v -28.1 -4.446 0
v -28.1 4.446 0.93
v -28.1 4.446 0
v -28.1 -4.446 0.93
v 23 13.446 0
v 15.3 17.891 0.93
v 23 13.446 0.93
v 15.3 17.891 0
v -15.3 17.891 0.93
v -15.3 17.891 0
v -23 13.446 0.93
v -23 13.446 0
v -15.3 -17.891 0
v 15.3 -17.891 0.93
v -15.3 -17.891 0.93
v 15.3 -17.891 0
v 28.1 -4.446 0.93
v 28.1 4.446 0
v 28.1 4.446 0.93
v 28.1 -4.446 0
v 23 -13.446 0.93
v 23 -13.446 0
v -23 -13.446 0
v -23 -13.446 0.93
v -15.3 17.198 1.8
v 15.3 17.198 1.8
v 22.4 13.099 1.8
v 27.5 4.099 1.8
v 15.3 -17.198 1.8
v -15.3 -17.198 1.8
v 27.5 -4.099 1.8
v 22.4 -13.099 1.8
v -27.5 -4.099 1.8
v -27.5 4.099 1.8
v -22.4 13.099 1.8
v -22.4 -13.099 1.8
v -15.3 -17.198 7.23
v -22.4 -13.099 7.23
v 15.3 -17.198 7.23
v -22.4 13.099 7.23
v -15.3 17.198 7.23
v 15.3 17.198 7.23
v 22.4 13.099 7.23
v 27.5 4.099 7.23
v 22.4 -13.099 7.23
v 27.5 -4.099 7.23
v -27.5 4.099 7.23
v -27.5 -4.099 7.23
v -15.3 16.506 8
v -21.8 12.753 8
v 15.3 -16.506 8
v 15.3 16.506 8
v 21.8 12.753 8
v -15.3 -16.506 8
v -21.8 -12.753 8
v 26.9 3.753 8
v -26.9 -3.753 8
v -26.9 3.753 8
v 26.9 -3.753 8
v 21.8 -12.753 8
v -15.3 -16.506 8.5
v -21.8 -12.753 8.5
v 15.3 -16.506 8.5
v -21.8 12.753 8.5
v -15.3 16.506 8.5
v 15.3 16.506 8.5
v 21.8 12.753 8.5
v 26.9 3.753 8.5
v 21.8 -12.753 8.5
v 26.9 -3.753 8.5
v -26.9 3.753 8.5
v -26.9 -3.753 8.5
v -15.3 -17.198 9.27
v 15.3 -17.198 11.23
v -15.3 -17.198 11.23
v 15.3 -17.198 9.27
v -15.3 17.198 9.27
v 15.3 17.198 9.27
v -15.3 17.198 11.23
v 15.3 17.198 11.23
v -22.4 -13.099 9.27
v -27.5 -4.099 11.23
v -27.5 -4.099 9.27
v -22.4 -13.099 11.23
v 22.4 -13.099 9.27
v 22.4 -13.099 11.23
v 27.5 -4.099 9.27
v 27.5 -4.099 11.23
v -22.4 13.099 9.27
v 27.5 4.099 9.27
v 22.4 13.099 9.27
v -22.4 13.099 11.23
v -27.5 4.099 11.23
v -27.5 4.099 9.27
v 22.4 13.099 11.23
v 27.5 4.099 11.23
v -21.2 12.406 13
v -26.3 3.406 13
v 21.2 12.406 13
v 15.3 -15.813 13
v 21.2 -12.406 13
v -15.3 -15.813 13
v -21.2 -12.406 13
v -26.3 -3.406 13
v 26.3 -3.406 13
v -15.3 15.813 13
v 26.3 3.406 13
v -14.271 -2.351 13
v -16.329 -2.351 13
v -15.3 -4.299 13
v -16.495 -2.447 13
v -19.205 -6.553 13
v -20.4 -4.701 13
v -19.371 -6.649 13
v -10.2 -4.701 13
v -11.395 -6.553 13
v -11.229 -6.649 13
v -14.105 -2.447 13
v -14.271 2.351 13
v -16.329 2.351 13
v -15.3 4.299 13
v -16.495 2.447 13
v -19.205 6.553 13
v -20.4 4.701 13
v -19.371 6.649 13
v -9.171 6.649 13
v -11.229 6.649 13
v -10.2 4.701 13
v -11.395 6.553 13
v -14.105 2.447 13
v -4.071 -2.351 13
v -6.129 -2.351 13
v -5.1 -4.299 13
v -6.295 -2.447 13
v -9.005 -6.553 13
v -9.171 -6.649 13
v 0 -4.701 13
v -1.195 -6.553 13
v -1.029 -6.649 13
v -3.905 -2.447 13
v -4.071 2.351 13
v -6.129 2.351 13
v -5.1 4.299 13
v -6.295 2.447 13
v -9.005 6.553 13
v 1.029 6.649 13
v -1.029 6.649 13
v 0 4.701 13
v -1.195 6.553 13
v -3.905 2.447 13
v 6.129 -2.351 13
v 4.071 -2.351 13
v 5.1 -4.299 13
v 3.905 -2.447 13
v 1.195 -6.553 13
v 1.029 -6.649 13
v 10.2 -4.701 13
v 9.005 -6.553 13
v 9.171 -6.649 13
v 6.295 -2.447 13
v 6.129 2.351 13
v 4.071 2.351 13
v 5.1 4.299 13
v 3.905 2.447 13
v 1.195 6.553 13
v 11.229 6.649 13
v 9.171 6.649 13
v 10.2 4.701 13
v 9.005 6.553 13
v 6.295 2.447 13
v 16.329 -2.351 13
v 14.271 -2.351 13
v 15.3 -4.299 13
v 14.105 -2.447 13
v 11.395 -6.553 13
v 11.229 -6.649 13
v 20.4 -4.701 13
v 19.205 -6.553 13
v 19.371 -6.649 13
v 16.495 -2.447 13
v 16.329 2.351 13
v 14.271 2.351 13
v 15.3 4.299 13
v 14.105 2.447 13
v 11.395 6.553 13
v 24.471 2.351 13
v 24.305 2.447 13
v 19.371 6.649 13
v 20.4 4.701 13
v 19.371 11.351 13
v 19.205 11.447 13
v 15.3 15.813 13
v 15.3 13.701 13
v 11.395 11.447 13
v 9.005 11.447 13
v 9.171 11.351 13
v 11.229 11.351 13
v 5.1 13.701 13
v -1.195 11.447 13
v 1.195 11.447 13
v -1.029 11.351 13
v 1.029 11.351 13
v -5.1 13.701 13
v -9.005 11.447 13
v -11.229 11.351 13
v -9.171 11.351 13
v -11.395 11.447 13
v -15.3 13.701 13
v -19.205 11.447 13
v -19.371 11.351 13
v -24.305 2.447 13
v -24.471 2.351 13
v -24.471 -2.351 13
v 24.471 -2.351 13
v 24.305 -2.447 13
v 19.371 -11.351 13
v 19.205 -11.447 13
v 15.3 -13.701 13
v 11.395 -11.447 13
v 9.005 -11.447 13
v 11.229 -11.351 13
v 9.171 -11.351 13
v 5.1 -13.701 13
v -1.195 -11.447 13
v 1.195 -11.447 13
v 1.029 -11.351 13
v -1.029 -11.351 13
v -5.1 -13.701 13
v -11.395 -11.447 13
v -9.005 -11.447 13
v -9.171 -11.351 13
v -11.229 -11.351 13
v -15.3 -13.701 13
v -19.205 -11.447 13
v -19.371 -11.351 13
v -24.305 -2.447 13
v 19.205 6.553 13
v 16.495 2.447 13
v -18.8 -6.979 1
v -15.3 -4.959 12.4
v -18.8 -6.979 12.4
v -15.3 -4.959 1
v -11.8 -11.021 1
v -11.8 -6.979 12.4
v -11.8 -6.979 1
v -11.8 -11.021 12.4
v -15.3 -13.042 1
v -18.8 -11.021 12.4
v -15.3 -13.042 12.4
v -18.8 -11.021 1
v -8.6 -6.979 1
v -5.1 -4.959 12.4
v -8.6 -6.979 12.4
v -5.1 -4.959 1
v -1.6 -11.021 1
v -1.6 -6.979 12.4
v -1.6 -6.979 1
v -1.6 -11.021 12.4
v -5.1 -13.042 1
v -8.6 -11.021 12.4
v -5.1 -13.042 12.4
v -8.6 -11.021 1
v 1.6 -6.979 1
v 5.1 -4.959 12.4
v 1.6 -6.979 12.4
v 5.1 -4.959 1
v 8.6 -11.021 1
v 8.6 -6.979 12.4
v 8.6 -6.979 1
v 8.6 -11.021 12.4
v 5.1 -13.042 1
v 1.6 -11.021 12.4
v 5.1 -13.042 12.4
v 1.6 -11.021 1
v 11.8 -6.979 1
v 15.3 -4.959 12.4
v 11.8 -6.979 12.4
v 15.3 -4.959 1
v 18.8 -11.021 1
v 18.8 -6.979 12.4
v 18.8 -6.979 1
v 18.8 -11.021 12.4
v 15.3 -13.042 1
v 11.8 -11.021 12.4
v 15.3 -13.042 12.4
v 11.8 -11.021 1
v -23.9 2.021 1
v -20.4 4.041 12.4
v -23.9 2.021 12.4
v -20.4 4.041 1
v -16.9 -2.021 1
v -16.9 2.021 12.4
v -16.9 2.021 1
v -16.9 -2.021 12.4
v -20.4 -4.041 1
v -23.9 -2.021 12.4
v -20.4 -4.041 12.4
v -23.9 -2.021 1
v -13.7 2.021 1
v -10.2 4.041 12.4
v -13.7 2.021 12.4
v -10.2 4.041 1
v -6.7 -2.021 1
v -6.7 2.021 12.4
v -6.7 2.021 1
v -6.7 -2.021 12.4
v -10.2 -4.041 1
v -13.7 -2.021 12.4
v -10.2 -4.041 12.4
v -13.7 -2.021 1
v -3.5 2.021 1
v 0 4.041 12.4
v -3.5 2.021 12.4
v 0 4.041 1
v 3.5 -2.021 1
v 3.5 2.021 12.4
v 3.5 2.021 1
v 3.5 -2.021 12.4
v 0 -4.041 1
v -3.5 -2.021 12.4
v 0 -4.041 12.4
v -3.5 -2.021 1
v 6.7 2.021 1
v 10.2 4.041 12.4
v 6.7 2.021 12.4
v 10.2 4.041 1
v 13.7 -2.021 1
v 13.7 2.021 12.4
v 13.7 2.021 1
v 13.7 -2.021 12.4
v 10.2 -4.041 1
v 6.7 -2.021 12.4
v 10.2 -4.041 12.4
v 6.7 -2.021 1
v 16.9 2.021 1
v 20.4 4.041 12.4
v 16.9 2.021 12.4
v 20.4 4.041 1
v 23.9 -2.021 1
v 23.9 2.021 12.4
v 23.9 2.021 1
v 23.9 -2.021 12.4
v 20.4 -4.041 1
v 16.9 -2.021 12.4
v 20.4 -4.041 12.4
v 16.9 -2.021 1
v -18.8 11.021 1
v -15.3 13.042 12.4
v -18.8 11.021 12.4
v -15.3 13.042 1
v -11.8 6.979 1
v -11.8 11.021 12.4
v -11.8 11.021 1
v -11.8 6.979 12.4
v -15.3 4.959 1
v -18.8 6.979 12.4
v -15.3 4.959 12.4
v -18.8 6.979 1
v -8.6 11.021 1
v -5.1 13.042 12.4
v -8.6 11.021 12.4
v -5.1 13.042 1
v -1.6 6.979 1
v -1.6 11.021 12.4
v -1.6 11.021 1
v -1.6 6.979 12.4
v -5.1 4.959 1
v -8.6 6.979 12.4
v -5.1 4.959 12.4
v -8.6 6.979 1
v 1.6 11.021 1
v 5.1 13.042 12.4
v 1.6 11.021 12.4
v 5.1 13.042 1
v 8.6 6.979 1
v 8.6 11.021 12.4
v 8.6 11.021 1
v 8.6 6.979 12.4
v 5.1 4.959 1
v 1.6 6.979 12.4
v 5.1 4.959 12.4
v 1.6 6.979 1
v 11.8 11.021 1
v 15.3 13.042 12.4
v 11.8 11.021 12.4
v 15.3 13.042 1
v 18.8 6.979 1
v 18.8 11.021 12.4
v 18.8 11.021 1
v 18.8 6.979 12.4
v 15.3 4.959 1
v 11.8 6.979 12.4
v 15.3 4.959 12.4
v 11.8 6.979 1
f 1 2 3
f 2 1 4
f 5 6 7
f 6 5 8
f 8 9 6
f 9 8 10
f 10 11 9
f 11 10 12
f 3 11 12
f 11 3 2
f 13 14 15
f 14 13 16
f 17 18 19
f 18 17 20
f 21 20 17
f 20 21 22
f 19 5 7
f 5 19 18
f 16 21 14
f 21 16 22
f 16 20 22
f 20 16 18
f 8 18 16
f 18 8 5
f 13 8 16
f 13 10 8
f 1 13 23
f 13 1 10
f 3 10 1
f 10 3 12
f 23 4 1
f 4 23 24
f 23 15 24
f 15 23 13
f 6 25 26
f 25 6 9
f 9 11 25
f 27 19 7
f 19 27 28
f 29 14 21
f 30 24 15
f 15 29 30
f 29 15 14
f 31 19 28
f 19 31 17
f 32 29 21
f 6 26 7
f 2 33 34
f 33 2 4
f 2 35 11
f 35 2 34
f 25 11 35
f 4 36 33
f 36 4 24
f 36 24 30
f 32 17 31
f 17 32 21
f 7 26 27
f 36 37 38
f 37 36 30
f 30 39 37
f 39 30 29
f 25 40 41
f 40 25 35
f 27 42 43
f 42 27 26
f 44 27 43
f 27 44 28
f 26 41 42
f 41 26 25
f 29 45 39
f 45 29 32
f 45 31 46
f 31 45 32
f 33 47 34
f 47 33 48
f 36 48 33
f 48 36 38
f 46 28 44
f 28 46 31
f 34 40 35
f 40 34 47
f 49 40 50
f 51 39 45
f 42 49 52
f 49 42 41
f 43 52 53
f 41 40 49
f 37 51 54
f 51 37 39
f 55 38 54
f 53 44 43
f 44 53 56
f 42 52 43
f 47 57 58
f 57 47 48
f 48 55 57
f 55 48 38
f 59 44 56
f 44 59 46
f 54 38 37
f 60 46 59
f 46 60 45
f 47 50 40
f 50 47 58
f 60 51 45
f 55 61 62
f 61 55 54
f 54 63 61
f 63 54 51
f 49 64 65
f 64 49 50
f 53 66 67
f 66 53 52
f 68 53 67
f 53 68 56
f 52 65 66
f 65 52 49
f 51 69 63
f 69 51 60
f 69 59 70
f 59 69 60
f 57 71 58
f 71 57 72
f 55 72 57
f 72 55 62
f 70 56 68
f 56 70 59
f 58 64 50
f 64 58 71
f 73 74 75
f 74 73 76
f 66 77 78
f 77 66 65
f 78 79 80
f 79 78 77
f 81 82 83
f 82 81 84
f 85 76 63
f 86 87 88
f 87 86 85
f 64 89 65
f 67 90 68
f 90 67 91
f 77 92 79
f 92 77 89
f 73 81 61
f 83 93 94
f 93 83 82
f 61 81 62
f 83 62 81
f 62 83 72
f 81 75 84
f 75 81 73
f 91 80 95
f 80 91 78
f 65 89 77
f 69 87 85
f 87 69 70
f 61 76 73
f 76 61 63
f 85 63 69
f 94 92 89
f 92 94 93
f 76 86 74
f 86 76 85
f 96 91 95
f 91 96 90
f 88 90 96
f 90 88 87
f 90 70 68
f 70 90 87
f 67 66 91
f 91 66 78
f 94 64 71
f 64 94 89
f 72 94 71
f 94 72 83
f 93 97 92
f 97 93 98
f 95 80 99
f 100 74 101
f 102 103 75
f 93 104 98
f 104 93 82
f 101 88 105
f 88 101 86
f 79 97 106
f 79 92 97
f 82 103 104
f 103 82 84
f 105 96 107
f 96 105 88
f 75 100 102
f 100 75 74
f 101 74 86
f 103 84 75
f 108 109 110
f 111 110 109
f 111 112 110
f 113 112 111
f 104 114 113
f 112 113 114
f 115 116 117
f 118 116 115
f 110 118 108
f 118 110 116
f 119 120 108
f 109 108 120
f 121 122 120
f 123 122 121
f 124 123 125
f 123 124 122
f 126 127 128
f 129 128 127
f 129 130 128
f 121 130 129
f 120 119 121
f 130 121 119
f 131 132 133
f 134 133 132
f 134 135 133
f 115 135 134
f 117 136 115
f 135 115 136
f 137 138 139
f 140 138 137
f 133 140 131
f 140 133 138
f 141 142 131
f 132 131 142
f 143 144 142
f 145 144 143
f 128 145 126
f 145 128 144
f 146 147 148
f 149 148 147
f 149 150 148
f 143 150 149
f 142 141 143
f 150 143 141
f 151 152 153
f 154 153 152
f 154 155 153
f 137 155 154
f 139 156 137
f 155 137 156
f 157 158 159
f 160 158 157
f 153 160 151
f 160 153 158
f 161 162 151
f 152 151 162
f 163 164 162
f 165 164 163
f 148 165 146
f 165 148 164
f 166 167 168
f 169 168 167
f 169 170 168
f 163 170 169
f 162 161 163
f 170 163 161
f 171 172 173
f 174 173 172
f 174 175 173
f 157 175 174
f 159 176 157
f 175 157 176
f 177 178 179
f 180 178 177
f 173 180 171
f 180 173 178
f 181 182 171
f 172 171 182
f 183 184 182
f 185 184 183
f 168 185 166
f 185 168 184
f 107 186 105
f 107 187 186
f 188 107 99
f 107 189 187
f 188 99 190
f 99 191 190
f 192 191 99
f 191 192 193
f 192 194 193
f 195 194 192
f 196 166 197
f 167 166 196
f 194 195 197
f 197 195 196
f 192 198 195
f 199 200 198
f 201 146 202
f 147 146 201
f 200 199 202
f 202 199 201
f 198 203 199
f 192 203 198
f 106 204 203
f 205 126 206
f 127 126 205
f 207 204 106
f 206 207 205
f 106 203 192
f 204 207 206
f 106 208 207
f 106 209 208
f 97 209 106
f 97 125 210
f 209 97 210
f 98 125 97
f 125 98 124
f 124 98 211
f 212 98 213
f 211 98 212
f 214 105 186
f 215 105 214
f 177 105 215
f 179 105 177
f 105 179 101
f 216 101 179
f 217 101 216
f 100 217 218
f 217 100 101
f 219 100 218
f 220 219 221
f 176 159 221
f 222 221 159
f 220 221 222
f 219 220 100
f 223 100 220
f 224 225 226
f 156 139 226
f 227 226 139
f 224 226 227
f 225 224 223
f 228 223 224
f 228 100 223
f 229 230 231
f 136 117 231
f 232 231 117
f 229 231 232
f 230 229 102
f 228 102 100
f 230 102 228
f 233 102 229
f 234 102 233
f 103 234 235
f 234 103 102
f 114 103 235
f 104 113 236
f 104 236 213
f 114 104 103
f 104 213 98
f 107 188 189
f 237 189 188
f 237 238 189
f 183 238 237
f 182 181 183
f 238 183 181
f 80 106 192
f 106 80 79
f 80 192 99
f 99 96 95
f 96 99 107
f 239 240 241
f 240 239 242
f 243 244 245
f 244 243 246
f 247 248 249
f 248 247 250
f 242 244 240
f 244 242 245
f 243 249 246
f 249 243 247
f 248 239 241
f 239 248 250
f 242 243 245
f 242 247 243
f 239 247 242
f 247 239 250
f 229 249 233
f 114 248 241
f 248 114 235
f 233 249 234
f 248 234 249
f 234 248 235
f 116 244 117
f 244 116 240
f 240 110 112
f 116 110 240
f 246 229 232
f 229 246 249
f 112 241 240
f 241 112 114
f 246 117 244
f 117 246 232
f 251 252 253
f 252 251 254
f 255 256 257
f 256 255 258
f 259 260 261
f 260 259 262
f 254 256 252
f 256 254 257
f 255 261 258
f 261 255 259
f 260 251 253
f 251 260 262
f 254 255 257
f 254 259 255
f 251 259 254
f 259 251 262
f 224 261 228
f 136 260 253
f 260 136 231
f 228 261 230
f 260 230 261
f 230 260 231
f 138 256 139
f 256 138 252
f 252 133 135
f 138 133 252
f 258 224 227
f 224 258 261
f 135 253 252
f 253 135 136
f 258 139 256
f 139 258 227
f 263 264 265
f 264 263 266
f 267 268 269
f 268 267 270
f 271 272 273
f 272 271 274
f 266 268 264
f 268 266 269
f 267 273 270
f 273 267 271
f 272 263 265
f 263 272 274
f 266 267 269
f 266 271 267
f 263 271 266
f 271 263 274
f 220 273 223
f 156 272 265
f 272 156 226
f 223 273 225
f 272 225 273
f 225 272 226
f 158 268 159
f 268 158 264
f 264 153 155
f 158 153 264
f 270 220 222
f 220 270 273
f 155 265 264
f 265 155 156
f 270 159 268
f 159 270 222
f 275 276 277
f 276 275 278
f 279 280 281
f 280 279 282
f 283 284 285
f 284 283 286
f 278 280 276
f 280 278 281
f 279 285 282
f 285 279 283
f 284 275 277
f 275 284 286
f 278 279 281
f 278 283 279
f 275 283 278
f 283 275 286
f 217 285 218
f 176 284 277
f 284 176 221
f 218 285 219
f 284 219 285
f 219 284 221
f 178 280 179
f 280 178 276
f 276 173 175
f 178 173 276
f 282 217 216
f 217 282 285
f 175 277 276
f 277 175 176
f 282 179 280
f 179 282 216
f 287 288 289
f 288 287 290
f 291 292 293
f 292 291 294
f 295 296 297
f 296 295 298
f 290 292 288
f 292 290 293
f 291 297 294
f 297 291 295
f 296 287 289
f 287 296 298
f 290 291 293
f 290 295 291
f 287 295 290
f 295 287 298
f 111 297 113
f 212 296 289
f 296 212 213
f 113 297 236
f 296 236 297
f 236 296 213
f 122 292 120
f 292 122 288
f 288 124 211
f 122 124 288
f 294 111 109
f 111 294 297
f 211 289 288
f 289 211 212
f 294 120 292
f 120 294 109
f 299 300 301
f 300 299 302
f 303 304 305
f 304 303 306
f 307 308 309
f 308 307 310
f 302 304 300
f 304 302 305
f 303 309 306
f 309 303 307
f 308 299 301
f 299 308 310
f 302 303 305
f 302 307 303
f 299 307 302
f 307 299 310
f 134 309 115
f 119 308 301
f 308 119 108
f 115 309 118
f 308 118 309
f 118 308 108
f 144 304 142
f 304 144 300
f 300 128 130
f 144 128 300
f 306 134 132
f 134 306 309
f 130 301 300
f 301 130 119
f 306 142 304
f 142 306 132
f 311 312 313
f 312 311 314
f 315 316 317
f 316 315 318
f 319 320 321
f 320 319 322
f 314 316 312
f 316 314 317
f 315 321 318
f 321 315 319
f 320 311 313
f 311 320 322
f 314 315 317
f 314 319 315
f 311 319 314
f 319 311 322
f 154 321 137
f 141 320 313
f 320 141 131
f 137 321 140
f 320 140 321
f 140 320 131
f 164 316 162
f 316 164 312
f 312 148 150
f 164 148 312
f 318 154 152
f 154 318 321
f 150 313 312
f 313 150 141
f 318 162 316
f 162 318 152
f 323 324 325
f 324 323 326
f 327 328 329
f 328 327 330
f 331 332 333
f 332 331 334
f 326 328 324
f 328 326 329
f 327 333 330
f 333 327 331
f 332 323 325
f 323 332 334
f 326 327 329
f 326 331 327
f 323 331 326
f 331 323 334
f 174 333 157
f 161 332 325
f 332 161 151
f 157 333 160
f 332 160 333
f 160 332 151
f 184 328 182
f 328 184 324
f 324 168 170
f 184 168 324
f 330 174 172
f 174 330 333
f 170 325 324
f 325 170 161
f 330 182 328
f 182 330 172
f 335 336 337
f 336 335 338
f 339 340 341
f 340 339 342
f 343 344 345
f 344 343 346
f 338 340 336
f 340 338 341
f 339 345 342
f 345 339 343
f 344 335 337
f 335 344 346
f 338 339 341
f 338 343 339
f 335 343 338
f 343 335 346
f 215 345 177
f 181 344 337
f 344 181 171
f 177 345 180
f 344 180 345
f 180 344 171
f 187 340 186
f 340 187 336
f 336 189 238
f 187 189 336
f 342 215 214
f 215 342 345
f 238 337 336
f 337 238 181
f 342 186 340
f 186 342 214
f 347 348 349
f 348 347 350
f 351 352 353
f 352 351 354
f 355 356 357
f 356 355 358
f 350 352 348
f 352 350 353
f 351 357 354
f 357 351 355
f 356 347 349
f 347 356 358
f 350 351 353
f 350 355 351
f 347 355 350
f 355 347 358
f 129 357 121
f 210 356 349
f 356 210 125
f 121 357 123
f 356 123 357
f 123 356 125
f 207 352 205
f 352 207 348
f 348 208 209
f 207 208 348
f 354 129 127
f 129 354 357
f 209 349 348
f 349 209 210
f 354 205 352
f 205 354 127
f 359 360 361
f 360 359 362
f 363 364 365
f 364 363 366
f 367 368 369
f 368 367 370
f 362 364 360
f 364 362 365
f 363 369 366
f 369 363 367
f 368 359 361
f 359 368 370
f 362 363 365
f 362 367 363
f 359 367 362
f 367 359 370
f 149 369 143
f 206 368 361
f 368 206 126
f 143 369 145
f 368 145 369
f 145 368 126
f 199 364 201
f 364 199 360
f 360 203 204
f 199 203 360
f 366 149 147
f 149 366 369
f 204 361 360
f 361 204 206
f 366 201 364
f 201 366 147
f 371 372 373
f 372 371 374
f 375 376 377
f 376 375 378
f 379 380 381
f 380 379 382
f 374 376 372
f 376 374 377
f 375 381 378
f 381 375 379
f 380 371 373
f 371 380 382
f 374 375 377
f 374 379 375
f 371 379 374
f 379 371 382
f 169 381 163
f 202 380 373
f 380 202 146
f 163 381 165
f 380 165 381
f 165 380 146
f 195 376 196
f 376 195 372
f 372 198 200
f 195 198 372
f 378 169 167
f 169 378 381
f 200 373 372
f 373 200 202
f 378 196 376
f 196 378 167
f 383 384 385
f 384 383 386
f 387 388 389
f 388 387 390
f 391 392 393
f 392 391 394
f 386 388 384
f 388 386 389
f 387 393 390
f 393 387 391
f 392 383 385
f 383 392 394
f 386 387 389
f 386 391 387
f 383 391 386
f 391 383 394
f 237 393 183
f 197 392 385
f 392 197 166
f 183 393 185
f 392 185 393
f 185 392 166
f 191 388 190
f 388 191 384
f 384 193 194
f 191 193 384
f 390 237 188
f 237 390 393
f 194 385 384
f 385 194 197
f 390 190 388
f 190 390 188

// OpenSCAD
// Contoured hex-bit stand, v3
// 13 pockets in a 4-5-4 hexagonal lattice.
// Designed for a 0.6 mm nozzle and support-free FDM printing.
// Units: millimetres.

$fn = 48;

// ---------- Pocket layout ----------
row_counts = [4, 5, 4];
total_pockets = 13;

hex_flat_to_flat = 7.0;
pocket_depth = 12.0;
base_thickness = 1.0;
pocket_mouth_chamfer_h = 0.6;
pocket_mouth_flat_to_flat = 8.2;

pitch_x = 10.2;
pitch_y = 9.0;

// ---------- Contoured body ----------
// Nominal material around the widest part of the pocket mouths.
wall_margin = 3.0;            // five 0.6 mm nozzle widths

body_h = pocket_depth + base_thickness; // 13 mm total

// Side-wall styling. All horizontal changes are multiples of 0.6 mm.
foot_flare = 0.6;             // subtle lower plinth
waist_inset = 0.6;            // shallow recessed accent band
top_chamfer_inset = 1.2;      // 2 nozzle widths at the top edge

// Z stations for faceted/tapered wall profile.
z0 = 0.00;
z_foot_top = 0.90;
z_foot_blend = 1.80;
z_waist_start = 7.20;
z_waist_low = 8.00;
z_waist_high = 8.50;
z_waist_end = 9.30;
z_chamfer_start = 11.20;
z_top = body_h;

// ---------- Derived ----------
hex_r = hex_flat_to_flat / sqrt(3);
mouth_hex_r = pocket_mouth_flat_to_flat / sqrt(3);

module pocket_hex_2d(r) {
    rotate(30)
        circle(r = r, $fn = 6);
}

module pocket_cluster_2d() {
    union() {
        for (ri = [0 : len(row_counts)-1]) {
            count = row_counts[ri];
            y = (ri - (len(row_counts)-1)/2) * pitch_y;
            for (ci = [0 : count-1]) {
                x = (ci - (count-1)/2) * pitch_x;
                translate([x, y])
                    pocket_hex_2d(mouth_hex_r);
            }
        }
    }
}

// Body outline follows the union of the outermost pocket mouths.
// `extra` modifies the nominal wall margin for styling transitions.
module body_profile_2d(extra = 0) {
    offset(delta = wall_margin + extra)
        pocket_cluster_2d();
}

module profile_slice(z, extra, thickness = 0.03) {
    translate([0, 0, z])
        linear_extrude(height = thickness)
            body_profile_2d(extra);
}

module loft_segment(z1, extra1, z2, extra2) {
    hull() {
        profile_slice(z1, extra1);
        profile_slice(z2 - 0.03, extra2);
    }
}

module styled_body() {
    union() {
        // Slightly flared base/plinth.
        loft_segment(z0, foot_flare, z_foot_top, foot_flare);
        loft_segment(z_foot_top, foot_flare, z_foot_blend, 0);

        // Main wall.
        loft_segment(z_foot_blend, 0, z_waist_start, 0);

        // Shallow recessed faceted belt around the outer wall.
        loft_segment(z_waist_start, 0, z_waist_low, -waist_inset);
        loft_segment(z_waist_low, -waist_inset, z_waist_high, -waist_inset);
        loft_segment(z_waist_high, -waist_inset, z_waist_end, 0);

        // Upper wall and top chamfer.
        loft_segment(z_waist_end, 0, z_chamfer_start, 0);
        loft_segment(z_chamfer_start, 0, z_top, -top_chamfer_inset);
    }
}

module hex_prism(r, h) {
    linear_extrude(height = h)
        pocket_hex_2d(r);
}

module bit_pocket() {
    // Straight 7.0 mm AF section begins exactly 1.0 mm above the print bed.
    translate([0, 0, base_thickness])
        hex_prism(hex_r, pocket_depth - pocket_mouth_chamfer_h + 0.08);

    // 0.6 mm lead-in taper. Functional pocket below remains 7.0 mm AF.
    hull() {
        translate([0, 0, body_h - pocket_mouth_chamfer_h])
            hex_prism(hex_r, 0.03);
        translate([0, 0, body_h + 0.03])
            hex_prism(mouth_hex_r, 0.03);
    }
}

module all_pockets() {
    for (ri = [0 : len(row_counts)-1]) {
        count = row_counts[ri];
        y = (ri - (len(row_counts)-1)/2) * pitch_y;
        for (ci = [0 : count-1]) {
            x = (ci - (count-1)/2) * pitch_x;
            translate([x, y, 0])
                bit_pocket();
        }
    }
}

module stand() {
    difference() {
        styled_body();
        all_pockets();
    }
}

// ---------- Sanity checks ----------
assert(total_pockets >= 12, "Stand must hold at least 12 bits");
assert(body_h - pocket_depth == base_thickness,
       "Pocket depth/base thickness relationship is inconsistent");
assert(base_thickness >= 1.0,
       "Base thickness below 1.0 mm is not recommended");
assert(wall_margin - top_chamfer_inset >= 1.8,
       "Top rim should remain at least 1.8 mm wide for a 0.6 mm nozzle");
assert(wall_margin - waist_inset >= 1.8,
       "Waist band leaves too little material around pocket mouths");
assert(pocket_mouth_flat_to_flat >= hex_flat_to_flat,
       "Pocket mouth must not be smaller than the straight pocket");

stand();
